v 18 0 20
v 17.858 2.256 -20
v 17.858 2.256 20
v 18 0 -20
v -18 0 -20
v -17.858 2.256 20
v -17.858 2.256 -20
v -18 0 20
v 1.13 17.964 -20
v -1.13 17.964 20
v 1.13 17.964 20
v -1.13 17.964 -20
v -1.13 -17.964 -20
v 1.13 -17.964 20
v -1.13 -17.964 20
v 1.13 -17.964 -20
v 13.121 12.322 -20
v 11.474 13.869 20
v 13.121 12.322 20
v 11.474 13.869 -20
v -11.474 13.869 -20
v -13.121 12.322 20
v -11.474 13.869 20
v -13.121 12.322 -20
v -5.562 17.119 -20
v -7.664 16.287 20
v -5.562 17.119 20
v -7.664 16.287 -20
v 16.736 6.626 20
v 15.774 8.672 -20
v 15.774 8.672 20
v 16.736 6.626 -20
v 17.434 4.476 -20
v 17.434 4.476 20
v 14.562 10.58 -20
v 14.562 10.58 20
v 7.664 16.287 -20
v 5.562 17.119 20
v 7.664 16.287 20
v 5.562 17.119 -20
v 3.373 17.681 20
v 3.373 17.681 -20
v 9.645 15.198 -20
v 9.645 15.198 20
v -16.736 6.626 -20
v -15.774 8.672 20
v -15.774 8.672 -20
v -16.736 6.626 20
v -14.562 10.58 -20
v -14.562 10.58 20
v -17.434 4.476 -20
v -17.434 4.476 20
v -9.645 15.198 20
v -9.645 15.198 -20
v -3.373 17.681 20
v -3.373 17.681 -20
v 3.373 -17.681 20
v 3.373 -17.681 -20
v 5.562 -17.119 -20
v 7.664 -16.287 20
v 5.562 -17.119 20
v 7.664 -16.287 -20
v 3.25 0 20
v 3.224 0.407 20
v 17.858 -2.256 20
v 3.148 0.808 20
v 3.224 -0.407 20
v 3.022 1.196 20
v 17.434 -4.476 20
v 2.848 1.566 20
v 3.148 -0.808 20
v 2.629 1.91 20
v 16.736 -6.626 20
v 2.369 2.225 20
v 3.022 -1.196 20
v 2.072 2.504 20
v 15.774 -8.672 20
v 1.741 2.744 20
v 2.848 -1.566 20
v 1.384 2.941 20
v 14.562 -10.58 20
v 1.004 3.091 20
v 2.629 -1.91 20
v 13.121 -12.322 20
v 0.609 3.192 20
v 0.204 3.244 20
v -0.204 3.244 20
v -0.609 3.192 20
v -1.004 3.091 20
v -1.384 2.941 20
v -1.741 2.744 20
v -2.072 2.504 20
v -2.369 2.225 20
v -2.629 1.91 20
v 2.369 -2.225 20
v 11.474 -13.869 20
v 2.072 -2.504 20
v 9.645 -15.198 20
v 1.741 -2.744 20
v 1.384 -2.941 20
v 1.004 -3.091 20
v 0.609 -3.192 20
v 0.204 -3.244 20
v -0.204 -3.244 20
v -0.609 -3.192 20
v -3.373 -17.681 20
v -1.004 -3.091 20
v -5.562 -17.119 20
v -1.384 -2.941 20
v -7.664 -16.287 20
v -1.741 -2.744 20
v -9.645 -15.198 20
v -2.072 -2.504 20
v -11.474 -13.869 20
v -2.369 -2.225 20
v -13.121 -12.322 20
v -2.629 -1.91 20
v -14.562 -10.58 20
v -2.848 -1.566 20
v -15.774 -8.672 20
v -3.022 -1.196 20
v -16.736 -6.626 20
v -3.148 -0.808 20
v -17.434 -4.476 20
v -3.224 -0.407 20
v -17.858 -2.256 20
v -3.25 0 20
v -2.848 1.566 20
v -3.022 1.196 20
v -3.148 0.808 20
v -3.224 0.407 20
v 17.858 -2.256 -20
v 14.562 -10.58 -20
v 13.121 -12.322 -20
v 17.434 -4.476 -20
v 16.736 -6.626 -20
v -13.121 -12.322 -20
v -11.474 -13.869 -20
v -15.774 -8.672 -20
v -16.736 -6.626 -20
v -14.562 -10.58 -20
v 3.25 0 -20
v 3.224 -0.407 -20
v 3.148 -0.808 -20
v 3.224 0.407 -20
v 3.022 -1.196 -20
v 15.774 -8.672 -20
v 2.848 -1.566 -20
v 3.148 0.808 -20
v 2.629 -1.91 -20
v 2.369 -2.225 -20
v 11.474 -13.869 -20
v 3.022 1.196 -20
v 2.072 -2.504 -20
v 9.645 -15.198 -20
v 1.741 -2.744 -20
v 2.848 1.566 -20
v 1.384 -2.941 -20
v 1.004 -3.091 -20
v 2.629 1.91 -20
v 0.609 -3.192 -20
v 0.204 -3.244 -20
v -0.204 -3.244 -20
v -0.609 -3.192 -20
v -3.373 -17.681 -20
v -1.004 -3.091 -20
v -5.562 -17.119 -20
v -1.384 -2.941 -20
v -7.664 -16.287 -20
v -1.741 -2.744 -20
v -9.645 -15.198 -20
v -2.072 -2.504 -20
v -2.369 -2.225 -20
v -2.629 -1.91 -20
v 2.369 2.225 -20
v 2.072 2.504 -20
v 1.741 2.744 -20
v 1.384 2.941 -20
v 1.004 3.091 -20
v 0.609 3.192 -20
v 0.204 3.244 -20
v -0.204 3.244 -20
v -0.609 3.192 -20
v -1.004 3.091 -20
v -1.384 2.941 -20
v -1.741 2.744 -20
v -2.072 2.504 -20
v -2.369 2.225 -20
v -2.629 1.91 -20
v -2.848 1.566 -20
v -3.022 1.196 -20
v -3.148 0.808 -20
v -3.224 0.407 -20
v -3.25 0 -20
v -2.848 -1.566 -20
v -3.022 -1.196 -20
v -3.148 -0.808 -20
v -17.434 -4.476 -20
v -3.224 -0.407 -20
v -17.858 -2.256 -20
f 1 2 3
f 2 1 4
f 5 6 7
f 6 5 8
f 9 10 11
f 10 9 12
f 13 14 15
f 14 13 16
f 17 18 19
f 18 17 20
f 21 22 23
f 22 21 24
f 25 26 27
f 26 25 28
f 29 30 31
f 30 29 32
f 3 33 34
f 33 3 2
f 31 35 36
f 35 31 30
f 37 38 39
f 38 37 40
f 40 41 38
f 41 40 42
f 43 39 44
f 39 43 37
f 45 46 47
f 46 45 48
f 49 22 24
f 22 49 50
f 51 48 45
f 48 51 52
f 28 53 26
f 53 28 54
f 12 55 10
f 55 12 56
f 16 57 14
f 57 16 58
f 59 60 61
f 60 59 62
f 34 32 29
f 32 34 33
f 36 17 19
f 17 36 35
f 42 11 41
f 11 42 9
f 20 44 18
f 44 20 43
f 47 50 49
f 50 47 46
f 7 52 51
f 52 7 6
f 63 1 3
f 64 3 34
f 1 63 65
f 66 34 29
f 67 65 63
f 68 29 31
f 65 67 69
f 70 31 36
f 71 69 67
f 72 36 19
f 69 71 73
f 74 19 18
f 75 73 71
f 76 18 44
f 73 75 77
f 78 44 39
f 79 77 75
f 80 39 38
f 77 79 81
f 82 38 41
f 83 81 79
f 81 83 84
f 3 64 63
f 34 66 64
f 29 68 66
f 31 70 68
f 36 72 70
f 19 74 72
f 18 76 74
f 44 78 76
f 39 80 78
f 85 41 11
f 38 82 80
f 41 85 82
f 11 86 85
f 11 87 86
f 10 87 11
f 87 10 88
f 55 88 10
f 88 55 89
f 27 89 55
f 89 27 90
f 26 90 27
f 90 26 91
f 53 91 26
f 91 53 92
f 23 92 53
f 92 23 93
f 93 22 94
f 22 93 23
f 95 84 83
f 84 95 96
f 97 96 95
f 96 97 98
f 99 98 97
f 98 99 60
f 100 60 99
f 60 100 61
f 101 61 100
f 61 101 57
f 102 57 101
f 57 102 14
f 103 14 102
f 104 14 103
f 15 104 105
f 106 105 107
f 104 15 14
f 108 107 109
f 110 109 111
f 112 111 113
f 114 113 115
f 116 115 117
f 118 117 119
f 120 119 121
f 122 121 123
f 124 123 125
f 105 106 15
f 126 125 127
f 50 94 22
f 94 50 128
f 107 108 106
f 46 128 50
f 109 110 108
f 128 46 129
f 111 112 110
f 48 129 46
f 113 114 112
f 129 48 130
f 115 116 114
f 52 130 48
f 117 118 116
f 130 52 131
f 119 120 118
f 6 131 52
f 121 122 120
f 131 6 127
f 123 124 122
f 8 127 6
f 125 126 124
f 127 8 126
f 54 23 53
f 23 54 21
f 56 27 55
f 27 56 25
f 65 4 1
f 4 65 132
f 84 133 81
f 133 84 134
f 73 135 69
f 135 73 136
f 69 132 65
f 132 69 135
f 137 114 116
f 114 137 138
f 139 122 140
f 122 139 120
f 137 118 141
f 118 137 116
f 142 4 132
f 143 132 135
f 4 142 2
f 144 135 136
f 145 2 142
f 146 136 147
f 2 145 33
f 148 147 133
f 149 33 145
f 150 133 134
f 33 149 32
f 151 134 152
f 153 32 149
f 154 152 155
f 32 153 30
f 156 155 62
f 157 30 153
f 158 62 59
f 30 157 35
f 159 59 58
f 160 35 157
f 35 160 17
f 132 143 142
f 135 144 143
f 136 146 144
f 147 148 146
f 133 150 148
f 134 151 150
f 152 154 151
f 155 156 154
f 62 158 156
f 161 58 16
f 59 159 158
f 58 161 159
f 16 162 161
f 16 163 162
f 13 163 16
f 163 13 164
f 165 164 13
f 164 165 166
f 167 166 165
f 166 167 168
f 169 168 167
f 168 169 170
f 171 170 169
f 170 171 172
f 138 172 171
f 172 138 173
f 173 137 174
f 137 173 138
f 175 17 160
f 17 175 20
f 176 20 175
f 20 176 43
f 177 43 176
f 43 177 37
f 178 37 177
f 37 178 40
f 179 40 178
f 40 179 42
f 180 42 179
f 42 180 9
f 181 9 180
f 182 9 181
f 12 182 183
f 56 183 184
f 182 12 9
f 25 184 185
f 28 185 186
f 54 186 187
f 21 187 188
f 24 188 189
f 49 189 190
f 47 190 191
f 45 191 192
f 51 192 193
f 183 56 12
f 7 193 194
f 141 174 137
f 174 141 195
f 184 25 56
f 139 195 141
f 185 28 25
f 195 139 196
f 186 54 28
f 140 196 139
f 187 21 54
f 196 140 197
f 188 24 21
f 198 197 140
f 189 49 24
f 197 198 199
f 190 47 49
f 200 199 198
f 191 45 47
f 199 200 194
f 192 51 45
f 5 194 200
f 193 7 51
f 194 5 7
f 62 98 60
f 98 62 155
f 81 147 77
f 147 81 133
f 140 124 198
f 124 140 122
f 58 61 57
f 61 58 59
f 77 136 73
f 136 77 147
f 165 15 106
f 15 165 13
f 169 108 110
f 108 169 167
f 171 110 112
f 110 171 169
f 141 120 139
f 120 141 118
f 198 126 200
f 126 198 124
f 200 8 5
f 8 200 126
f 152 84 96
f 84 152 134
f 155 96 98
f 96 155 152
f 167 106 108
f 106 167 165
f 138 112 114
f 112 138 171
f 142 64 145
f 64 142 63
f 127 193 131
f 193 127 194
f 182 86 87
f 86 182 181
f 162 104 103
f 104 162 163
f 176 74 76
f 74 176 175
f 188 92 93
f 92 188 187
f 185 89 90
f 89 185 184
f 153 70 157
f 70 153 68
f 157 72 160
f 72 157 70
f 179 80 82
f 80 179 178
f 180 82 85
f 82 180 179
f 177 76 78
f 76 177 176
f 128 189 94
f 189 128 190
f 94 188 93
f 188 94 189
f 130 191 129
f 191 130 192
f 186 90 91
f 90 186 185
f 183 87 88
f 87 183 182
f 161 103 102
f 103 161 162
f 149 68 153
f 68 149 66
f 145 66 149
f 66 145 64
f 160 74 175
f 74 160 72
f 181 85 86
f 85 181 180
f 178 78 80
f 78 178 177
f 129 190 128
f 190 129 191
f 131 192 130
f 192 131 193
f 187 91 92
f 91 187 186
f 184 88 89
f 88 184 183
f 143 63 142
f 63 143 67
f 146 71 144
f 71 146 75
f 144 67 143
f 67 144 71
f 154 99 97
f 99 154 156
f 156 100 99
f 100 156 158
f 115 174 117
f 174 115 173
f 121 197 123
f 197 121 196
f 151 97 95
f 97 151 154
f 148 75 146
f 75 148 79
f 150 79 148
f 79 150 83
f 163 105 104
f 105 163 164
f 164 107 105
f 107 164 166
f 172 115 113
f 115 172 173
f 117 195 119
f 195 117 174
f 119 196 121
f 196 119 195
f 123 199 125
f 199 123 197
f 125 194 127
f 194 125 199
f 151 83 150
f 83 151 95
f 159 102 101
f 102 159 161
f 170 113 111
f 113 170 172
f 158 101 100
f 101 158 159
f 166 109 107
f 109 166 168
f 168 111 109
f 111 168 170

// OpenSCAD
$fn = 50;


difference() {
	union() {
		translate(v = [0, 0, -20.0000000000]) {
			cylinder(h = 40, r = 18.0000000000);
		}
	}
	union() {
		translate(v = [0, 0, -100.0000000000]) {
			cylinder(h = 200, r = 3.2500000000);
		}
	}
}
